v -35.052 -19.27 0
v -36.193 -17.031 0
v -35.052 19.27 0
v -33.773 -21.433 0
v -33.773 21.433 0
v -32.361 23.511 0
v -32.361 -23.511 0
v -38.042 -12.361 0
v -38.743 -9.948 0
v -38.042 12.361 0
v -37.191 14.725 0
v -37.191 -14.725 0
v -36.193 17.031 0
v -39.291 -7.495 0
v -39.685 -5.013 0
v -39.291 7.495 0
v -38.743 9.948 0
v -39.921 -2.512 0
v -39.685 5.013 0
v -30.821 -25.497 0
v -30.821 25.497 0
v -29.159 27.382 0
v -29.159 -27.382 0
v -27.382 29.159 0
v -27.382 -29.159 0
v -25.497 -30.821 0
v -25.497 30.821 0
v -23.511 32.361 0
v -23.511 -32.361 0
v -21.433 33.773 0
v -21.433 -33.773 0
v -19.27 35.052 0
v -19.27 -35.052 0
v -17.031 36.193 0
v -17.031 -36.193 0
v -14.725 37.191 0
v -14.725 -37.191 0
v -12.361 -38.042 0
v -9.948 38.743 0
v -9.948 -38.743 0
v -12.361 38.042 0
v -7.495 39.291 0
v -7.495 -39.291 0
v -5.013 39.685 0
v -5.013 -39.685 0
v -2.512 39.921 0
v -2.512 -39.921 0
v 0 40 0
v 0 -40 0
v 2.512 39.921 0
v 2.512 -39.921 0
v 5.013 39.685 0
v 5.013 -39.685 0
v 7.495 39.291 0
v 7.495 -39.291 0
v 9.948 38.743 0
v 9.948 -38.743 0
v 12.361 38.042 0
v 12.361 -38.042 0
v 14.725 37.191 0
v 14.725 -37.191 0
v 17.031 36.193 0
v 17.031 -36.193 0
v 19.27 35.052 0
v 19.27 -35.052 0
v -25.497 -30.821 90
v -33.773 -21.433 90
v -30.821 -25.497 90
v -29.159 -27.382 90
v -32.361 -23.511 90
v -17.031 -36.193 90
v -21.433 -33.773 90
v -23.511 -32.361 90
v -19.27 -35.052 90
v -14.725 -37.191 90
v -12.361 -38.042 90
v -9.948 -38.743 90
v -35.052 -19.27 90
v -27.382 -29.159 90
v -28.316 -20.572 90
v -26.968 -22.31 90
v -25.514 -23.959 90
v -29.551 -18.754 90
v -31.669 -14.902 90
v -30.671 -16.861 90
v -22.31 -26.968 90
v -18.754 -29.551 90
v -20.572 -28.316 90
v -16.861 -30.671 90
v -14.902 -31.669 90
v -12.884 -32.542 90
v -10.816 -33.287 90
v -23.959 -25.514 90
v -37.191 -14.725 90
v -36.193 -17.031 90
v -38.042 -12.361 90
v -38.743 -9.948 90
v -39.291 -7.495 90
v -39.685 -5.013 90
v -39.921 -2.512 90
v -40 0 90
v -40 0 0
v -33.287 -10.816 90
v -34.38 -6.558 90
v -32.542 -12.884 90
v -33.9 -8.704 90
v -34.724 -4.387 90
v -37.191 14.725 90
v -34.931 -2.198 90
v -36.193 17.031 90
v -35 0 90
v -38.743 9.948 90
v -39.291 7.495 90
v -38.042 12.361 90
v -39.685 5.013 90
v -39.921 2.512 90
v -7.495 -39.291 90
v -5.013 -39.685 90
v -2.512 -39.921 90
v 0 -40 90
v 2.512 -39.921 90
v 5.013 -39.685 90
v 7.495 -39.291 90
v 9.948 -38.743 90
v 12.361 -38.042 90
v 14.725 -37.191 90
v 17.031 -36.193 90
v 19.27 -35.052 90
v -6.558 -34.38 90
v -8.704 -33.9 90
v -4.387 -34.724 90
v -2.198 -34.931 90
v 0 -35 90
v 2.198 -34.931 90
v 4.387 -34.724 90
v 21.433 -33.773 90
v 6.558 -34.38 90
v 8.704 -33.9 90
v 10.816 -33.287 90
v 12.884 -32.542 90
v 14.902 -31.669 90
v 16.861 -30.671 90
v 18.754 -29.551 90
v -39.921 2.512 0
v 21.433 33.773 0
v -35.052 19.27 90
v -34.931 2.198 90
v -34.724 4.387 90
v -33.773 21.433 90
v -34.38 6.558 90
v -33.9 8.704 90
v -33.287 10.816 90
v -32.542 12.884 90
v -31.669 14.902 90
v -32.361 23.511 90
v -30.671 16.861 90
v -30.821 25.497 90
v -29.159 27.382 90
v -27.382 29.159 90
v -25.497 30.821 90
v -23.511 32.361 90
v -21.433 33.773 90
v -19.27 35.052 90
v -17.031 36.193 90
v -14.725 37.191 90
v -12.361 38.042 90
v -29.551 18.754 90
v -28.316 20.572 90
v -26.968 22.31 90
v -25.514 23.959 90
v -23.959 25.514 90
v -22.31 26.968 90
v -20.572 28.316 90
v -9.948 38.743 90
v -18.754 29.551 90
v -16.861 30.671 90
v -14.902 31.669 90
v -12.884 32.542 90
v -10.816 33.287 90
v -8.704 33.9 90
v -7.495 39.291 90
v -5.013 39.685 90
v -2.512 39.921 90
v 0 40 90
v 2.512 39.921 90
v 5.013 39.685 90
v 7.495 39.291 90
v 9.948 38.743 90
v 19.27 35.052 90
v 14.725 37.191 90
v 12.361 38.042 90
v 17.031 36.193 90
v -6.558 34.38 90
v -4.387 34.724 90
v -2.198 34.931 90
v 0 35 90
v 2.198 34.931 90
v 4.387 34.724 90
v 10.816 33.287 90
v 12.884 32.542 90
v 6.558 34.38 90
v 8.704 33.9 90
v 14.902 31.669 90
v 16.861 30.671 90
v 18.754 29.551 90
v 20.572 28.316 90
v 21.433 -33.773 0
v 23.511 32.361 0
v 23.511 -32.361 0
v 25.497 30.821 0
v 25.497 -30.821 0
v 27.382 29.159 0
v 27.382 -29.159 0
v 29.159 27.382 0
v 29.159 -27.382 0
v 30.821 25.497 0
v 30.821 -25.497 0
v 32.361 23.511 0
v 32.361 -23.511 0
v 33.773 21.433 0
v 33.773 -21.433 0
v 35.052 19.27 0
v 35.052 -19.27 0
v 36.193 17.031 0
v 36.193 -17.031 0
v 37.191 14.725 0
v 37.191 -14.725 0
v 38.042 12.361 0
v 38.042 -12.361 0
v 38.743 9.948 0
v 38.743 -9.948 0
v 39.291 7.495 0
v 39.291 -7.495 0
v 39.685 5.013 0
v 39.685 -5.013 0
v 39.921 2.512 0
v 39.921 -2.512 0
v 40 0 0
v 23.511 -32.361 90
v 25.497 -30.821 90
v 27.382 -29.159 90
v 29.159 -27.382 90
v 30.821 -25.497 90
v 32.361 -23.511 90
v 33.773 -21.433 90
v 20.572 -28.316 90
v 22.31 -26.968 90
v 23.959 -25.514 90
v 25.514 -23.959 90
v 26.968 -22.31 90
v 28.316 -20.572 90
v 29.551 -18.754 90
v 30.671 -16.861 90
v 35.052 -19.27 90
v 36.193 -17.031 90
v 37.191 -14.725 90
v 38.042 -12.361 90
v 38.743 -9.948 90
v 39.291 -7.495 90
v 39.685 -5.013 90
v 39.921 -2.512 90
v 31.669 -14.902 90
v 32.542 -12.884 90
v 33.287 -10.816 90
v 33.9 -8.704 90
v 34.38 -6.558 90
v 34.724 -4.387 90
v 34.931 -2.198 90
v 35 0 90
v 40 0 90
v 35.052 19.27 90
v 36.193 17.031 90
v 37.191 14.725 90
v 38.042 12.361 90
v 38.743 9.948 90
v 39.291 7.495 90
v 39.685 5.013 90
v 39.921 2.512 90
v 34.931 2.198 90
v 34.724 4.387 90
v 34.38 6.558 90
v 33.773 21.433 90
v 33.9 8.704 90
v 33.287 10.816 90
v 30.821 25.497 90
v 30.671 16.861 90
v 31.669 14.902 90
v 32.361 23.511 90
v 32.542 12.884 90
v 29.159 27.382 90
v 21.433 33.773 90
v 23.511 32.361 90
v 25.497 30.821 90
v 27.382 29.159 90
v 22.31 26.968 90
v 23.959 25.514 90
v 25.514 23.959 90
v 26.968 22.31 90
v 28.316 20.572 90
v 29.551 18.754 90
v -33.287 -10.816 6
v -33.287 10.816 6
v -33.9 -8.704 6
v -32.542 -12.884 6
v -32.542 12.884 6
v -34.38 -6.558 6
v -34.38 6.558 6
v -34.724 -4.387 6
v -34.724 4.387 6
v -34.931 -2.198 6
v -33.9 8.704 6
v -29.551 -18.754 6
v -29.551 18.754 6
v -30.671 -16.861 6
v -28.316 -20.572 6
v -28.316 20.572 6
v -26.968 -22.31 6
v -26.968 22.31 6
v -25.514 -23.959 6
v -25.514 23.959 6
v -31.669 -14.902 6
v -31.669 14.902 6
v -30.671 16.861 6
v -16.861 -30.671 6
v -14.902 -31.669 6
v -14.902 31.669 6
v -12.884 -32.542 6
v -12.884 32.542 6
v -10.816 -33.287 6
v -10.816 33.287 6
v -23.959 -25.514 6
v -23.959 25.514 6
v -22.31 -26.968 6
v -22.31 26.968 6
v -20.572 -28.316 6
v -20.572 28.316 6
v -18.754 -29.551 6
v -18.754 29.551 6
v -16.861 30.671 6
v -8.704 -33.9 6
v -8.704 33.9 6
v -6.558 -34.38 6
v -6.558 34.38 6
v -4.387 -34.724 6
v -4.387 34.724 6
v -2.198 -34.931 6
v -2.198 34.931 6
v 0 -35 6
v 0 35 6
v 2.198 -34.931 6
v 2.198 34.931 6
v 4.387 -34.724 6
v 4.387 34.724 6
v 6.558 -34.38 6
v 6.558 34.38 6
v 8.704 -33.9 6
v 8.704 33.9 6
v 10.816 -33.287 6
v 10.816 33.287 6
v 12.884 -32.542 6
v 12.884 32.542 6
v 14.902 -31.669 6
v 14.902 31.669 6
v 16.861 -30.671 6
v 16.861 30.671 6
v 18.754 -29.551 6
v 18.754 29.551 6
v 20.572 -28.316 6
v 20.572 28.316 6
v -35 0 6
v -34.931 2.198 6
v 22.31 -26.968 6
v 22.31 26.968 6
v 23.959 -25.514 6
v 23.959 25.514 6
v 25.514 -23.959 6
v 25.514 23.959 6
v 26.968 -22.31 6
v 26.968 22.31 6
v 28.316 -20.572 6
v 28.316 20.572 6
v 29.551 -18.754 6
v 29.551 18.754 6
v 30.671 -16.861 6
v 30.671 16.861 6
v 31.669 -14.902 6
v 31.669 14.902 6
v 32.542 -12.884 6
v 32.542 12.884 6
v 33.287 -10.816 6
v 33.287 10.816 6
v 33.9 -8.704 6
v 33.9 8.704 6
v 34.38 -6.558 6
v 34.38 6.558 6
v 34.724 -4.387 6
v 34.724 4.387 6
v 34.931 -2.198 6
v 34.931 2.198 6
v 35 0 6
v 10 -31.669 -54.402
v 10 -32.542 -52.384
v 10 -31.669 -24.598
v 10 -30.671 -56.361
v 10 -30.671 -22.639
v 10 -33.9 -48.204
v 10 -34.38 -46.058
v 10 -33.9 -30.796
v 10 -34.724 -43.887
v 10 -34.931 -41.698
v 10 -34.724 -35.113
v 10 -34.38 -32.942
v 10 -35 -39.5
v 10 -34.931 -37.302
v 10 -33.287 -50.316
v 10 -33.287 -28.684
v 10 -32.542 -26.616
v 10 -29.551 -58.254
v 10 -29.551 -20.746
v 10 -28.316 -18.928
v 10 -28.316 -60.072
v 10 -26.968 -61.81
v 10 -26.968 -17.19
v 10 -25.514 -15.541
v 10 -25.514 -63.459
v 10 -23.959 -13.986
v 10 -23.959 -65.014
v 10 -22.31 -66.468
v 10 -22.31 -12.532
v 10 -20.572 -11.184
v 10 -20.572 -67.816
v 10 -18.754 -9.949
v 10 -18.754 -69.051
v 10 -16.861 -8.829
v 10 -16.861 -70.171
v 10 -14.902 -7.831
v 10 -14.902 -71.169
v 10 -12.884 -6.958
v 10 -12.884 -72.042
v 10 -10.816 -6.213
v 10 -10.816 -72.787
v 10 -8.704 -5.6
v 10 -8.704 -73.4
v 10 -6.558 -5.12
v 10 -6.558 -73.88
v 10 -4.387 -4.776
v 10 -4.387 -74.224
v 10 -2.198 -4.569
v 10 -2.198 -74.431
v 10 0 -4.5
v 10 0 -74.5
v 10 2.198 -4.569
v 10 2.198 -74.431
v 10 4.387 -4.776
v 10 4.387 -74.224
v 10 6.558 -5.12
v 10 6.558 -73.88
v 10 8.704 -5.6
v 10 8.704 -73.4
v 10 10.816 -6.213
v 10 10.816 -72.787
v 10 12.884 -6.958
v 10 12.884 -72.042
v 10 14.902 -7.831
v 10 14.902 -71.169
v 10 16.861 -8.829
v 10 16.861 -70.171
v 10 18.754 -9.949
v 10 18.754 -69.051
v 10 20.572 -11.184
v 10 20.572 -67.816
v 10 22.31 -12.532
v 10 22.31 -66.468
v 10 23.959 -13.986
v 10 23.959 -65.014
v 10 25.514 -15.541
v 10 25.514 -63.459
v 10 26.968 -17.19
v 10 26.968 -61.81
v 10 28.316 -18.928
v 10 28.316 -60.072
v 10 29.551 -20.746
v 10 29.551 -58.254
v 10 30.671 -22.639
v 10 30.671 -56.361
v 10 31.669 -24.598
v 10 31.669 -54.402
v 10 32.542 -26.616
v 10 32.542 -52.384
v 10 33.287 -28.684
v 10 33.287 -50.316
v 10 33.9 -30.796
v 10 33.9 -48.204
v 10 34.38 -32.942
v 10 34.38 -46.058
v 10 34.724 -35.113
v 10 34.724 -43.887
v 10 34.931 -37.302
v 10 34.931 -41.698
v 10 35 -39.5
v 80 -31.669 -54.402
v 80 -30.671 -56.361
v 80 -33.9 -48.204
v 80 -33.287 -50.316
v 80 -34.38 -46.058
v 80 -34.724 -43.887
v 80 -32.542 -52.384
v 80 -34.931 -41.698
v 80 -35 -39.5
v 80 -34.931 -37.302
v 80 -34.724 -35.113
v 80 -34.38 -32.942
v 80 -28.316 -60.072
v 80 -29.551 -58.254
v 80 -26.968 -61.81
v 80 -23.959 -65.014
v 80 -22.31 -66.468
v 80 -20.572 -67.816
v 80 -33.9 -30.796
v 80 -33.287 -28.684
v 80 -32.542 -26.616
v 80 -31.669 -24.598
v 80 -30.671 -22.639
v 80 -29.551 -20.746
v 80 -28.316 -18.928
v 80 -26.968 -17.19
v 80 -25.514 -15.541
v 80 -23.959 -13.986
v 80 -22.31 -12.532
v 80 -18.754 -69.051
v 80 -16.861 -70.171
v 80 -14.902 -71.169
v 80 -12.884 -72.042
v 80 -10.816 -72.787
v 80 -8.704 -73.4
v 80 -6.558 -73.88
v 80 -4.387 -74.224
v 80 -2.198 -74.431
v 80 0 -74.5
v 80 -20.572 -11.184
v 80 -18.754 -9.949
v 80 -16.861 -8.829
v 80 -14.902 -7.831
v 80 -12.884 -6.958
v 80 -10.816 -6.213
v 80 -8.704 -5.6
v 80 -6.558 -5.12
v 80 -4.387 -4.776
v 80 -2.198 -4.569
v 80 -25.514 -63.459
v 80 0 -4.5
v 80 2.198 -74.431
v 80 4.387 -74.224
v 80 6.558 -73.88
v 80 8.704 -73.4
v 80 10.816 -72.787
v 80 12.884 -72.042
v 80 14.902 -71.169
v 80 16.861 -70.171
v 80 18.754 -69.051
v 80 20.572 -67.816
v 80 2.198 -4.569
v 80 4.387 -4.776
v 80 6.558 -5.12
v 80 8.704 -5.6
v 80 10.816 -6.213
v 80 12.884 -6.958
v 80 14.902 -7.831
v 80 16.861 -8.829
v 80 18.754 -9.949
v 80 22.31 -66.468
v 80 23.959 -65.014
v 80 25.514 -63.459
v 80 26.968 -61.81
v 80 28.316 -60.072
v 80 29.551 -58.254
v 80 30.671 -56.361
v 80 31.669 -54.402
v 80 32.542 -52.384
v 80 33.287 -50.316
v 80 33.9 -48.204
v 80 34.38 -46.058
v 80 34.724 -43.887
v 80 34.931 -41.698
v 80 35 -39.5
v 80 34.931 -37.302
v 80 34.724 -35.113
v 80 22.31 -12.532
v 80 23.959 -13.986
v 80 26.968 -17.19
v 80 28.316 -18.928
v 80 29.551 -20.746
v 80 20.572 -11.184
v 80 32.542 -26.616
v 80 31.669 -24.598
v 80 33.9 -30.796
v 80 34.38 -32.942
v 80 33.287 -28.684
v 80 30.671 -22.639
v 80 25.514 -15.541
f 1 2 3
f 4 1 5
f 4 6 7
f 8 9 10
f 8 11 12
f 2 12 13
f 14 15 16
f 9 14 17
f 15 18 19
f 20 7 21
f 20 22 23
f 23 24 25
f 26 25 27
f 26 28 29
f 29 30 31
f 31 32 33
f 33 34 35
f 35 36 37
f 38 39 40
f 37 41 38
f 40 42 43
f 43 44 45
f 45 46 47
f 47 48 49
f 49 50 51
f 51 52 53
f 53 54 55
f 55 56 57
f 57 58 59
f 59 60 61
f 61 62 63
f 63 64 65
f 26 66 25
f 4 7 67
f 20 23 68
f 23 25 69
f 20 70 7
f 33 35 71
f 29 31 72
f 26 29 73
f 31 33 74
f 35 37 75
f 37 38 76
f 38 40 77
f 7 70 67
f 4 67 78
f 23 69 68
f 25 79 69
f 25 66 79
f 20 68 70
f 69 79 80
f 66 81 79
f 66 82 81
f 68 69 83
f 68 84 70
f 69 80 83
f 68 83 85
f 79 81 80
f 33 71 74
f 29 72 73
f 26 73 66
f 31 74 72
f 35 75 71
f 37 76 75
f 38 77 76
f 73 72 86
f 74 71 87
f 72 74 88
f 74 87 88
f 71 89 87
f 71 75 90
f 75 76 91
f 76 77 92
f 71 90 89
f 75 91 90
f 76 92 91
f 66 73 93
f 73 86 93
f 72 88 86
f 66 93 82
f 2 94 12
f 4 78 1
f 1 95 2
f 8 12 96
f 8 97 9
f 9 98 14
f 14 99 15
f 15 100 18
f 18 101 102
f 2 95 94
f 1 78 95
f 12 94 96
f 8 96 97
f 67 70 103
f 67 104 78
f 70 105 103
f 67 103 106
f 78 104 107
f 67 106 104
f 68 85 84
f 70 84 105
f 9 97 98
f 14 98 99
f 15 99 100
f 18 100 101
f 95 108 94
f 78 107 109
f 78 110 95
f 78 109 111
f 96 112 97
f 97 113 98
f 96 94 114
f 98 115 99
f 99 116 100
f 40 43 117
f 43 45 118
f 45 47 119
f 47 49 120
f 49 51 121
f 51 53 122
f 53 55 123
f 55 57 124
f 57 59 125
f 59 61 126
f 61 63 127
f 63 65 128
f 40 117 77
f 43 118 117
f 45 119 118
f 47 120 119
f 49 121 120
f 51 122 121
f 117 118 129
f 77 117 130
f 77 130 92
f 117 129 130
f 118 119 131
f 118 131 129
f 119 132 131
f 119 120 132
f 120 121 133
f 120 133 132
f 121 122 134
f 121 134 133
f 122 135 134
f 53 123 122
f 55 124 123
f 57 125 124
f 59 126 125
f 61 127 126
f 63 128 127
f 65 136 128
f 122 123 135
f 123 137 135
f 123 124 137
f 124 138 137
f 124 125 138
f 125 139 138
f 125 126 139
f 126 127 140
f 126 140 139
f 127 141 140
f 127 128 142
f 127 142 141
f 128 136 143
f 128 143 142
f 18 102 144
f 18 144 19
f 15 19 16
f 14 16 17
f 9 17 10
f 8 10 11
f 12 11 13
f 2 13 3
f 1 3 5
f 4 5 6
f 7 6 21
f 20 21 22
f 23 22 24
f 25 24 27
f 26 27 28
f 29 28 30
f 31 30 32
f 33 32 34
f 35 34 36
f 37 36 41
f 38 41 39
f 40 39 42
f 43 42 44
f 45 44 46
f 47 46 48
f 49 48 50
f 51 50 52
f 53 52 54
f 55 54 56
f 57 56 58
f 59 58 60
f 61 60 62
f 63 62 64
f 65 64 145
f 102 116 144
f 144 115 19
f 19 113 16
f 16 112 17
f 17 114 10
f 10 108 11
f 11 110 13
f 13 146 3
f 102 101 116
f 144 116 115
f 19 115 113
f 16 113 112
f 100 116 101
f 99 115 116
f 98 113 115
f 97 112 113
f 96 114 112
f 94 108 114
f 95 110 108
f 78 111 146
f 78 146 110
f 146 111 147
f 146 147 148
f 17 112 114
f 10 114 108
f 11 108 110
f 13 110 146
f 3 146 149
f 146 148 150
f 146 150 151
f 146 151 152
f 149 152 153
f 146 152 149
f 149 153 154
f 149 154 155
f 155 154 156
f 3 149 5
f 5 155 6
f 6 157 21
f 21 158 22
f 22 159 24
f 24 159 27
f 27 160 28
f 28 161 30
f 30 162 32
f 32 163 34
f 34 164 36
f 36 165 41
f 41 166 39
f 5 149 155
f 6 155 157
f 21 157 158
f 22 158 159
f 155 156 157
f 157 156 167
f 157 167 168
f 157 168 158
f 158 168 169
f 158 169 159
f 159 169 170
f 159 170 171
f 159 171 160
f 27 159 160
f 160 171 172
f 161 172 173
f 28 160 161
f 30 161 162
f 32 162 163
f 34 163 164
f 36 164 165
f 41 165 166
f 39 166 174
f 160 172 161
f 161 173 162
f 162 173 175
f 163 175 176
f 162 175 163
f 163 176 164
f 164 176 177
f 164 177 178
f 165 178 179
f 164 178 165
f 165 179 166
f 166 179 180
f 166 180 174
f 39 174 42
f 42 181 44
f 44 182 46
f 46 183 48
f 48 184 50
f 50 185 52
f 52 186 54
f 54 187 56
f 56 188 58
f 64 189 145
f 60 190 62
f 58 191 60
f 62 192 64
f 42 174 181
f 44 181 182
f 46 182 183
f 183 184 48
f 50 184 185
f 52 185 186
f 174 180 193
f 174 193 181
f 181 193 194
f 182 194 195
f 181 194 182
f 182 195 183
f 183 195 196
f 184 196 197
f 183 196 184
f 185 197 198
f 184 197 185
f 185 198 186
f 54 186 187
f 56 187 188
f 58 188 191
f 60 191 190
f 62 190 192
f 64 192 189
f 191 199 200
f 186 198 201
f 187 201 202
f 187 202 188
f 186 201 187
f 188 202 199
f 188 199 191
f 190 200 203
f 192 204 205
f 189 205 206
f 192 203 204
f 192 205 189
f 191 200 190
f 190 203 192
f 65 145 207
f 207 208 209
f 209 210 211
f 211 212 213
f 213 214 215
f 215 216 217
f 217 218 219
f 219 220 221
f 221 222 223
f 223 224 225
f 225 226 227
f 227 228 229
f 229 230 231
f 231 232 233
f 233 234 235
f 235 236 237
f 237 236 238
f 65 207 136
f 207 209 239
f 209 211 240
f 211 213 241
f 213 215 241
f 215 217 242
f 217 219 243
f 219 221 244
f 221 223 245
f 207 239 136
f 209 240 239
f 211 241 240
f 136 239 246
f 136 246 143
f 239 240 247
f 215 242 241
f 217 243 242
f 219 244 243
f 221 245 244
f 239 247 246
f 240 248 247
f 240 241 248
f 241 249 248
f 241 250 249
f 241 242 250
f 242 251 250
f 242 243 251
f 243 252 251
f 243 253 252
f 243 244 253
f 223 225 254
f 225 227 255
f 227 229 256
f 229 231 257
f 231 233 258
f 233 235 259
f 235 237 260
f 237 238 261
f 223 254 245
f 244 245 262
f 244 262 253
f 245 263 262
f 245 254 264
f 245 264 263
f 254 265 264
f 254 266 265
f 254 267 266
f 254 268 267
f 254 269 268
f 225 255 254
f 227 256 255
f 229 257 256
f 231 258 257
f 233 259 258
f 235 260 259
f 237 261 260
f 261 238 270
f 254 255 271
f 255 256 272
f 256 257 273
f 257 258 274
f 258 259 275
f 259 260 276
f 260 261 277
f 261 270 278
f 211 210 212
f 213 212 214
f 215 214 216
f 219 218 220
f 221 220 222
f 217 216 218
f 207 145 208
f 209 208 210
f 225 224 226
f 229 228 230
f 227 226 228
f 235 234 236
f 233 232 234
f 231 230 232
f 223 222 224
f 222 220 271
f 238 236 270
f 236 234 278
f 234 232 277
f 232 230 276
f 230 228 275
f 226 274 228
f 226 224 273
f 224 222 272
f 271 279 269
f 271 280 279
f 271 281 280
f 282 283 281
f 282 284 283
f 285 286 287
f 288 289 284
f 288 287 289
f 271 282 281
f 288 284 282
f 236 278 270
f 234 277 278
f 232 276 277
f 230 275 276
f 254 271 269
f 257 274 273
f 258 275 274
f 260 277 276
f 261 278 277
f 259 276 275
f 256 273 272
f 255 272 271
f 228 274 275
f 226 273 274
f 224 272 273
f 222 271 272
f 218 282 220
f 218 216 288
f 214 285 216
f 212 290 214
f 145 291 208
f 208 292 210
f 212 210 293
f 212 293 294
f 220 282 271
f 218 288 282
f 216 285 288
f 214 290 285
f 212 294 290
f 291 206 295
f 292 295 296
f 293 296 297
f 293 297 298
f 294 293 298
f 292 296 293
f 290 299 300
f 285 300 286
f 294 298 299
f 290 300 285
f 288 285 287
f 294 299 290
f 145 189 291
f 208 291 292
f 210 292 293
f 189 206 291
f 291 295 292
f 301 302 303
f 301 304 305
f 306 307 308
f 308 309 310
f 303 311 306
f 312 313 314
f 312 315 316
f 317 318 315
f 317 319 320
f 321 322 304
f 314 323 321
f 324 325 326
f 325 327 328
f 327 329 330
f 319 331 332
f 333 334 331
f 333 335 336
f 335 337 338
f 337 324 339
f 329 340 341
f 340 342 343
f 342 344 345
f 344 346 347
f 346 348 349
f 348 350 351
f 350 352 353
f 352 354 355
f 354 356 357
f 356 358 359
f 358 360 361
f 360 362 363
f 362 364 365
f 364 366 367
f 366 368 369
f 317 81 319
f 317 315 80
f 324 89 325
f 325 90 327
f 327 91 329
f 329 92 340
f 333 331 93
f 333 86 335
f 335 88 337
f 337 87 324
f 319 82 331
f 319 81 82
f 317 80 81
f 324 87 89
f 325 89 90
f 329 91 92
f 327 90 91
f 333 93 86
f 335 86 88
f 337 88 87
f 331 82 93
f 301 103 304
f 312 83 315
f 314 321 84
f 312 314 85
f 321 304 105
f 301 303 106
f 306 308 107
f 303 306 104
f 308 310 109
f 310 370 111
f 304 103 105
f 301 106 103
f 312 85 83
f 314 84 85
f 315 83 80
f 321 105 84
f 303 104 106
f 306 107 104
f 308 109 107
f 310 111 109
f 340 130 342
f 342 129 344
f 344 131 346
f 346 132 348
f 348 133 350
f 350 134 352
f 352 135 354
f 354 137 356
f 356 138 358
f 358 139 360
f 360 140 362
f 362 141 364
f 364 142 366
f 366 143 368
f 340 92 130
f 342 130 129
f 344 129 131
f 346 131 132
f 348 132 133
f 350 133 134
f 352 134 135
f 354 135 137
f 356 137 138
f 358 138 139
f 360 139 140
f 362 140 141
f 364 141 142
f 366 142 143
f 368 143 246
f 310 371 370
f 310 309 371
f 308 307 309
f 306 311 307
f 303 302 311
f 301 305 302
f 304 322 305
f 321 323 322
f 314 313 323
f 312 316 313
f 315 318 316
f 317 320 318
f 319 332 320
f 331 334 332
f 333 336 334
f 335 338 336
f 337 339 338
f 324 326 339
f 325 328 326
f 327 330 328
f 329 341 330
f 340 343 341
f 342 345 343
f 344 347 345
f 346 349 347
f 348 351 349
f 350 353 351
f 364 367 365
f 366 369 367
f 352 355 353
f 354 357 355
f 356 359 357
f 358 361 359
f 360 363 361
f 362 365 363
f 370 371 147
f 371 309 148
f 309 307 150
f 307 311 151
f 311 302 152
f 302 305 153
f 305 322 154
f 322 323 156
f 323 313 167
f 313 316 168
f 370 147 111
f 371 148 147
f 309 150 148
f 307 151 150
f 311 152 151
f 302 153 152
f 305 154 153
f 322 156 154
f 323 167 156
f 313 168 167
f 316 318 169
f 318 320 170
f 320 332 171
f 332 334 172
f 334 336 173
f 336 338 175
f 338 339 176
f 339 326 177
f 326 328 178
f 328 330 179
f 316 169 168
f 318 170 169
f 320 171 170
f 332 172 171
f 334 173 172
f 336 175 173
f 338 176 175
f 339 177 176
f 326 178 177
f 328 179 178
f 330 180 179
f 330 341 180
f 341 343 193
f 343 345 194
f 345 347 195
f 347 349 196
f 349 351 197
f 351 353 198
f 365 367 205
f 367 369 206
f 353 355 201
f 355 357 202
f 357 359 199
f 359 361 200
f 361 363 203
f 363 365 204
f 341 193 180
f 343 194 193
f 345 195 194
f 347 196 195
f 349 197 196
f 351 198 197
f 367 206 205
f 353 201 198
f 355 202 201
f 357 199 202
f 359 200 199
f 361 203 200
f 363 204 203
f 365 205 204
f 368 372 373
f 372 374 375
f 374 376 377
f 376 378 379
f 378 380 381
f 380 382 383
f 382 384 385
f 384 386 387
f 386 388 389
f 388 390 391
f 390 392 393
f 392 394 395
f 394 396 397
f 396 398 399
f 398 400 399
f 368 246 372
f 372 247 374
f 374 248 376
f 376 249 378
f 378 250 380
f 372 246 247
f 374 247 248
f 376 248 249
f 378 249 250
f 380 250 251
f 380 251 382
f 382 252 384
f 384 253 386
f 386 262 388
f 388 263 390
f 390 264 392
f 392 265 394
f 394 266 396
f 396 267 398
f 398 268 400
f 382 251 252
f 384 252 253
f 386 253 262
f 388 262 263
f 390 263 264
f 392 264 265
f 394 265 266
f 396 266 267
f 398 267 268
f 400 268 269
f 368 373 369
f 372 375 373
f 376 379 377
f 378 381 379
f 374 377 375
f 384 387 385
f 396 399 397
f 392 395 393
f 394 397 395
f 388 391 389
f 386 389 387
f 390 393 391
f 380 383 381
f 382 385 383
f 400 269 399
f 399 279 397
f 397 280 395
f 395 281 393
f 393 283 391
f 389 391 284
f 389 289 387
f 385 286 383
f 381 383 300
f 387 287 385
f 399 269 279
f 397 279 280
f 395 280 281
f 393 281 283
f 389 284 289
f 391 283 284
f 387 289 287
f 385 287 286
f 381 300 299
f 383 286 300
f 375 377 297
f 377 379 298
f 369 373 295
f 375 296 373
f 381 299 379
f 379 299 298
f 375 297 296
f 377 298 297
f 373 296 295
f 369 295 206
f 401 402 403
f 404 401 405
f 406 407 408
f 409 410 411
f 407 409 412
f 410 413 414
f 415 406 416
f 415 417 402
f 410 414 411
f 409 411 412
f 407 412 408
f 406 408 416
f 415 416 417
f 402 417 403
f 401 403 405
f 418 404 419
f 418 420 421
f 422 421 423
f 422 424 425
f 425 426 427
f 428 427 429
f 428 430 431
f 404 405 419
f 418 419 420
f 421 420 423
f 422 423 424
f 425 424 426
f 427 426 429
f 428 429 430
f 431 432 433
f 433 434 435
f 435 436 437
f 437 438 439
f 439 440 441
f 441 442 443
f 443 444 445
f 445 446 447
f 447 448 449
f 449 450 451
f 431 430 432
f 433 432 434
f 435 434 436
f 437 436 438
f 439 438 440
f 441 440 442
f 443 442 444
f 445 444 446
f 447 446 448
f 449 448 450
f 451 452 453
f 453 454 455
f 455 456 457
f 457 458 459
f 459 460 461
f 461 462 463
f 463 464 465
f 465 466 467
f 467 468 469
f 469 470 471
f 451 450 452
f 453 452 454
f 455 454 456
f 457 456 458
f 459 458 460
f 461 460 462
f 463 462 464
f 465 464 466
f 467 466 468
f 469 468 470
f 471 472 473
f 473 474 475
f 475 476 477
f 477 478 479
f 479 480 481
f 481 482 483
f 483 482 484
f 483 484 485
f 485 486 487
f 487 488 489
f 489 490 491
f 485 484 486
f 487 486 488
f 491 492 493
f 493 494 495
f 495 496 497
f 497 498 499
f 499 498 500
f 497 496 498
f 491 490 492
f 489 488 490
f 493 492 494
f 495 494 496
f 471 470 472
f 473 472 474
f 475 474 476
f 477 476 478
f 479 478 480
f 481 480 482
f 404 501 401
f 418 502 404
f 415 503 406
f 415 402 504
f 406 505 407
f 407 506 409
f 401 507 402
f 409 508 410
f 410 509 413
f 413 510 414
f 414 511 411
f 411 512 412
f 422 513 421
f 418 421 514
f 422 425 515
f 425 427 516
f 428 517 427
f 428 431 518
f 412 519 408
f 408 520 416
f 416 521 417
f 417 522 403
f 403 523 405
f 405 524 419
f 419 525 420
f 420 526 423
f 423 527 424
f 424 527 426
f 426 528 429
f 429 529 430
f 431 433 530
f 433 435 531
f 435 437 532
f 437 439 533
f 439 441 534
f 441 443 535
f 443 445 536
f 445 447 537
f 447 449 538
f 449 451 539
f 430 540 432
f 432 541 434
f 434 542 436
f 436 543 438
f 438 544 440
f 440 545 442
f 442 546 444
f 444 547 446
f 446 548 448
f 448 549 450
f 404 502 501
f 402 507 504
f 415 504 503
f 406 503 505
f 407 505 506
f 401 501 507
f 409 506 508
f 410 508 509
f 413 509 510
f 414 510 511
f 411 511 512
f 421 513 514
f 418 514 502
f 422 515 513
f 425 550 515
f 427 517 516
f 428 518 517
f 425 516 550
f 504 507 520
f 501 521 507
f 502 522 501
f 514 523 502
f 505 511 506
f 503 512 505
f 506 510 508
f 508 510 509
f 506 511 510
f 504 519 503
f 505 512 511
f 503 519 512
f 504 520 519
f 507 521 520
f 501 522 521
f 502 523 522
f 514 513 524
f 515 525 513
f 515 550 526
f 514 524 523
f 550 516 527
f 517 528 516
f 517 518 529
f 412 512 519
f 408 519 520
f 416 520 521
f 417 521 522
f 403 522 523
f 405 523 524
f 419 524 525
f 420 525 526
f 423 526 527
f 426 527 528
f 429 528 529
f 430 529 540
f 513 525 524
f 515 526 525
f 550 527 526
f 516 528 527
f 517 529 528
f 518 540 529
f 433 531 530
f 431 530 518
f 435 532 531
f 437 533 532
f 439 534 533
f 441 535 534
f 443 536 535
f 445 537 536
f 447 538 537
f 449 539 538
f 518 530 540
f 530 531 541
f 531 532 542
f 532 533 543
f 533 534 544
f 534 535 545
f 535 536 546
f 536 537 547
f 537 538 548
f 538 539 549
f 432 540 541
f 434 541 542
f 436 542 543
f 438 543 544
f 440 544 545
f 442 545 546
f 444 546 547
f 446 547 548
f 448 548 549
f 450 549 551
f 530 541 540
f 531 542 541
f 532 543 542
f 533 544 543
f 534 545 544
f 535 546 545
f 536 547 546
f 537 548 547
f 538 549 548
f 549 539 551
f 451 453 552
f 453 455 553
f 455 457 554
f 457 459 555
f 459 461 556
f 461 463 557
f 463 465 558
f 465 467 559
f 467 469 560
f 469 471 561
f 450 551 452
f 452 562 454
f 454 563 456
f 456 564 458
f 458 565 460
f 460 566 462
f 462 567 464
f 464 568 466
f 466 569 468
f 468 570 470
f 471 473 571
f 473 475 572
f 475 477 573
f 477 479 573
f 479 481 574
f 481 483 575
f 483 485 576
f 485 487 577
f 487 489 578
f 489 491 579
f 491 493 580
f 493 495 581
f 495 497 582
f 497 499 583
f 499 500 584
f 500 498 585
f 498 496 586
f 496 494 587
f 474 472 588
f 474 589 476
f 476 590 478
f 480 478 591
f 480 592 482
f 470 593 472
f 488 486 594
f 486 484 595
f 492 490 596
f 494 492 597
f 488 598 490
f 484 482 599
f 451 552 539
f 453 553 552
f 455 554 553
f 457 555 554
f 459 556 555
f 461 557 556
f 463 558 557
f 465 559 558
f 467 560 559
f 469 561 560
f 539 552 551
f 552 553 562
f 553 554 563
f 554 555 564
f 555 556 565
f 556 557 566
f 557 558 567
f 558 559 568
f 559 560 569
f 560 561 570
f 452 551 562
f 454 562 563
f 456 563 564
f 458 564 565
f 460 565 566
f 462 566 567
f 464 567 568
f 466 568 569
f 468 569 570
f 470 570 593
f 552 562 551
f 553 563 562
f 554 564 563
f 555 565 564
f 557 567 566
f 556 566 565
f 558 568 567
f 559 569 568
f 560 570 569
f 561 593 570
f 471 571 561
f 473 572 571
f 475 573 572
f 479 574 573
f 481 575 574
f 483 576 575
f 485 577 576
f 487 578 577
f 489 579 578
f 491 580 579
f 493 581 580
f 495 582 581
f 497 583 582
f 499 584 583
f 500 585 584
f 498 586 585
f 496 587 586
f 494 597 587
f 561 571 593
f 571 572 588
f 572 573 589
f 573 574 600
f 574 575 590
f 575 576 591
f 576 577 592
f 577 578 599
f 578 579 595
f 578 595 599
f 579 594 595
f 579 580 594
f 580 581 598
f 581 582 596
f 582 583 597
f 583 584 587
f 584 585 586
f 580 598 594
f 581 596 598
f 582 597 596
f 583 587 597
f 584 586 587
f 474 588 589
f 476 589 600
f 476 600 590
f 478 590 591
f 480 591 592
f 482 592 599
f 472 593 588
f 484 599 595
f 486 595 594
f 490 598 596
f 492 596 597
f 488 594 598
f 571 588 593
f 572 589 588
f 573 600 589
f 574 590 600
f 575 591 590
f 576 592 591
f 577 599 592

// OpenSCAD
// マグカップの設計パラメータ
mug_outer_radius = 40;
mug_inner_radius = 35;
mug_height = 90;
mug_bottom_thickness = 6;

handle_outer_radius = 35;
handle_inner_width = 25;
handle_inner_height = 30;
handle_thickness = 10; // D字の厚み（内側の空間に対する肉厚）

$fn = 100;

// 本体
difference() {
    // 外側の円筒
    cylinder(h = mug_height, r = mug_outer_radius);
    
    // 内側の空洞（底面の厚みを考慮して上方向にずらす）
    translate([0, 0, mug_bottom_thickness])
        cylinder(h = mug_height, r = mug_inner_radius);
}

// 取っ手 (Handle)
union() {
    difference() {
        // 取っ手の外形 (D字形状)
        // x=39.5の位置で中心を置くことで、半径40のマグ本体とわずかに重なり(0.5mm)を確保しマニフォールドを維持
        difference() {
            rotate([0, 90])
            translate([39.5, 0, mug_height / 2])
            cylinder(h = handle_outer_radius * 2, r = handle_outer_radius, center = true);
            
            // x < 39.5 の部分を削り取り、x > 39.5 の側（+X方向）のみを残す
            translate([-100, -100, -100])
            cube([39.5, 100, 100]);
        }
        
        // 取っ手の内側の空間 (指が入る穴)
        // 取っ手は x=39.5 から始まり、幅25mmなので x=64.5 まで
        translate([39.5, 0, mug_height / 2])
        cube([handle_inner_width, handle_thickness, handle_inner_height]);
    }
}
